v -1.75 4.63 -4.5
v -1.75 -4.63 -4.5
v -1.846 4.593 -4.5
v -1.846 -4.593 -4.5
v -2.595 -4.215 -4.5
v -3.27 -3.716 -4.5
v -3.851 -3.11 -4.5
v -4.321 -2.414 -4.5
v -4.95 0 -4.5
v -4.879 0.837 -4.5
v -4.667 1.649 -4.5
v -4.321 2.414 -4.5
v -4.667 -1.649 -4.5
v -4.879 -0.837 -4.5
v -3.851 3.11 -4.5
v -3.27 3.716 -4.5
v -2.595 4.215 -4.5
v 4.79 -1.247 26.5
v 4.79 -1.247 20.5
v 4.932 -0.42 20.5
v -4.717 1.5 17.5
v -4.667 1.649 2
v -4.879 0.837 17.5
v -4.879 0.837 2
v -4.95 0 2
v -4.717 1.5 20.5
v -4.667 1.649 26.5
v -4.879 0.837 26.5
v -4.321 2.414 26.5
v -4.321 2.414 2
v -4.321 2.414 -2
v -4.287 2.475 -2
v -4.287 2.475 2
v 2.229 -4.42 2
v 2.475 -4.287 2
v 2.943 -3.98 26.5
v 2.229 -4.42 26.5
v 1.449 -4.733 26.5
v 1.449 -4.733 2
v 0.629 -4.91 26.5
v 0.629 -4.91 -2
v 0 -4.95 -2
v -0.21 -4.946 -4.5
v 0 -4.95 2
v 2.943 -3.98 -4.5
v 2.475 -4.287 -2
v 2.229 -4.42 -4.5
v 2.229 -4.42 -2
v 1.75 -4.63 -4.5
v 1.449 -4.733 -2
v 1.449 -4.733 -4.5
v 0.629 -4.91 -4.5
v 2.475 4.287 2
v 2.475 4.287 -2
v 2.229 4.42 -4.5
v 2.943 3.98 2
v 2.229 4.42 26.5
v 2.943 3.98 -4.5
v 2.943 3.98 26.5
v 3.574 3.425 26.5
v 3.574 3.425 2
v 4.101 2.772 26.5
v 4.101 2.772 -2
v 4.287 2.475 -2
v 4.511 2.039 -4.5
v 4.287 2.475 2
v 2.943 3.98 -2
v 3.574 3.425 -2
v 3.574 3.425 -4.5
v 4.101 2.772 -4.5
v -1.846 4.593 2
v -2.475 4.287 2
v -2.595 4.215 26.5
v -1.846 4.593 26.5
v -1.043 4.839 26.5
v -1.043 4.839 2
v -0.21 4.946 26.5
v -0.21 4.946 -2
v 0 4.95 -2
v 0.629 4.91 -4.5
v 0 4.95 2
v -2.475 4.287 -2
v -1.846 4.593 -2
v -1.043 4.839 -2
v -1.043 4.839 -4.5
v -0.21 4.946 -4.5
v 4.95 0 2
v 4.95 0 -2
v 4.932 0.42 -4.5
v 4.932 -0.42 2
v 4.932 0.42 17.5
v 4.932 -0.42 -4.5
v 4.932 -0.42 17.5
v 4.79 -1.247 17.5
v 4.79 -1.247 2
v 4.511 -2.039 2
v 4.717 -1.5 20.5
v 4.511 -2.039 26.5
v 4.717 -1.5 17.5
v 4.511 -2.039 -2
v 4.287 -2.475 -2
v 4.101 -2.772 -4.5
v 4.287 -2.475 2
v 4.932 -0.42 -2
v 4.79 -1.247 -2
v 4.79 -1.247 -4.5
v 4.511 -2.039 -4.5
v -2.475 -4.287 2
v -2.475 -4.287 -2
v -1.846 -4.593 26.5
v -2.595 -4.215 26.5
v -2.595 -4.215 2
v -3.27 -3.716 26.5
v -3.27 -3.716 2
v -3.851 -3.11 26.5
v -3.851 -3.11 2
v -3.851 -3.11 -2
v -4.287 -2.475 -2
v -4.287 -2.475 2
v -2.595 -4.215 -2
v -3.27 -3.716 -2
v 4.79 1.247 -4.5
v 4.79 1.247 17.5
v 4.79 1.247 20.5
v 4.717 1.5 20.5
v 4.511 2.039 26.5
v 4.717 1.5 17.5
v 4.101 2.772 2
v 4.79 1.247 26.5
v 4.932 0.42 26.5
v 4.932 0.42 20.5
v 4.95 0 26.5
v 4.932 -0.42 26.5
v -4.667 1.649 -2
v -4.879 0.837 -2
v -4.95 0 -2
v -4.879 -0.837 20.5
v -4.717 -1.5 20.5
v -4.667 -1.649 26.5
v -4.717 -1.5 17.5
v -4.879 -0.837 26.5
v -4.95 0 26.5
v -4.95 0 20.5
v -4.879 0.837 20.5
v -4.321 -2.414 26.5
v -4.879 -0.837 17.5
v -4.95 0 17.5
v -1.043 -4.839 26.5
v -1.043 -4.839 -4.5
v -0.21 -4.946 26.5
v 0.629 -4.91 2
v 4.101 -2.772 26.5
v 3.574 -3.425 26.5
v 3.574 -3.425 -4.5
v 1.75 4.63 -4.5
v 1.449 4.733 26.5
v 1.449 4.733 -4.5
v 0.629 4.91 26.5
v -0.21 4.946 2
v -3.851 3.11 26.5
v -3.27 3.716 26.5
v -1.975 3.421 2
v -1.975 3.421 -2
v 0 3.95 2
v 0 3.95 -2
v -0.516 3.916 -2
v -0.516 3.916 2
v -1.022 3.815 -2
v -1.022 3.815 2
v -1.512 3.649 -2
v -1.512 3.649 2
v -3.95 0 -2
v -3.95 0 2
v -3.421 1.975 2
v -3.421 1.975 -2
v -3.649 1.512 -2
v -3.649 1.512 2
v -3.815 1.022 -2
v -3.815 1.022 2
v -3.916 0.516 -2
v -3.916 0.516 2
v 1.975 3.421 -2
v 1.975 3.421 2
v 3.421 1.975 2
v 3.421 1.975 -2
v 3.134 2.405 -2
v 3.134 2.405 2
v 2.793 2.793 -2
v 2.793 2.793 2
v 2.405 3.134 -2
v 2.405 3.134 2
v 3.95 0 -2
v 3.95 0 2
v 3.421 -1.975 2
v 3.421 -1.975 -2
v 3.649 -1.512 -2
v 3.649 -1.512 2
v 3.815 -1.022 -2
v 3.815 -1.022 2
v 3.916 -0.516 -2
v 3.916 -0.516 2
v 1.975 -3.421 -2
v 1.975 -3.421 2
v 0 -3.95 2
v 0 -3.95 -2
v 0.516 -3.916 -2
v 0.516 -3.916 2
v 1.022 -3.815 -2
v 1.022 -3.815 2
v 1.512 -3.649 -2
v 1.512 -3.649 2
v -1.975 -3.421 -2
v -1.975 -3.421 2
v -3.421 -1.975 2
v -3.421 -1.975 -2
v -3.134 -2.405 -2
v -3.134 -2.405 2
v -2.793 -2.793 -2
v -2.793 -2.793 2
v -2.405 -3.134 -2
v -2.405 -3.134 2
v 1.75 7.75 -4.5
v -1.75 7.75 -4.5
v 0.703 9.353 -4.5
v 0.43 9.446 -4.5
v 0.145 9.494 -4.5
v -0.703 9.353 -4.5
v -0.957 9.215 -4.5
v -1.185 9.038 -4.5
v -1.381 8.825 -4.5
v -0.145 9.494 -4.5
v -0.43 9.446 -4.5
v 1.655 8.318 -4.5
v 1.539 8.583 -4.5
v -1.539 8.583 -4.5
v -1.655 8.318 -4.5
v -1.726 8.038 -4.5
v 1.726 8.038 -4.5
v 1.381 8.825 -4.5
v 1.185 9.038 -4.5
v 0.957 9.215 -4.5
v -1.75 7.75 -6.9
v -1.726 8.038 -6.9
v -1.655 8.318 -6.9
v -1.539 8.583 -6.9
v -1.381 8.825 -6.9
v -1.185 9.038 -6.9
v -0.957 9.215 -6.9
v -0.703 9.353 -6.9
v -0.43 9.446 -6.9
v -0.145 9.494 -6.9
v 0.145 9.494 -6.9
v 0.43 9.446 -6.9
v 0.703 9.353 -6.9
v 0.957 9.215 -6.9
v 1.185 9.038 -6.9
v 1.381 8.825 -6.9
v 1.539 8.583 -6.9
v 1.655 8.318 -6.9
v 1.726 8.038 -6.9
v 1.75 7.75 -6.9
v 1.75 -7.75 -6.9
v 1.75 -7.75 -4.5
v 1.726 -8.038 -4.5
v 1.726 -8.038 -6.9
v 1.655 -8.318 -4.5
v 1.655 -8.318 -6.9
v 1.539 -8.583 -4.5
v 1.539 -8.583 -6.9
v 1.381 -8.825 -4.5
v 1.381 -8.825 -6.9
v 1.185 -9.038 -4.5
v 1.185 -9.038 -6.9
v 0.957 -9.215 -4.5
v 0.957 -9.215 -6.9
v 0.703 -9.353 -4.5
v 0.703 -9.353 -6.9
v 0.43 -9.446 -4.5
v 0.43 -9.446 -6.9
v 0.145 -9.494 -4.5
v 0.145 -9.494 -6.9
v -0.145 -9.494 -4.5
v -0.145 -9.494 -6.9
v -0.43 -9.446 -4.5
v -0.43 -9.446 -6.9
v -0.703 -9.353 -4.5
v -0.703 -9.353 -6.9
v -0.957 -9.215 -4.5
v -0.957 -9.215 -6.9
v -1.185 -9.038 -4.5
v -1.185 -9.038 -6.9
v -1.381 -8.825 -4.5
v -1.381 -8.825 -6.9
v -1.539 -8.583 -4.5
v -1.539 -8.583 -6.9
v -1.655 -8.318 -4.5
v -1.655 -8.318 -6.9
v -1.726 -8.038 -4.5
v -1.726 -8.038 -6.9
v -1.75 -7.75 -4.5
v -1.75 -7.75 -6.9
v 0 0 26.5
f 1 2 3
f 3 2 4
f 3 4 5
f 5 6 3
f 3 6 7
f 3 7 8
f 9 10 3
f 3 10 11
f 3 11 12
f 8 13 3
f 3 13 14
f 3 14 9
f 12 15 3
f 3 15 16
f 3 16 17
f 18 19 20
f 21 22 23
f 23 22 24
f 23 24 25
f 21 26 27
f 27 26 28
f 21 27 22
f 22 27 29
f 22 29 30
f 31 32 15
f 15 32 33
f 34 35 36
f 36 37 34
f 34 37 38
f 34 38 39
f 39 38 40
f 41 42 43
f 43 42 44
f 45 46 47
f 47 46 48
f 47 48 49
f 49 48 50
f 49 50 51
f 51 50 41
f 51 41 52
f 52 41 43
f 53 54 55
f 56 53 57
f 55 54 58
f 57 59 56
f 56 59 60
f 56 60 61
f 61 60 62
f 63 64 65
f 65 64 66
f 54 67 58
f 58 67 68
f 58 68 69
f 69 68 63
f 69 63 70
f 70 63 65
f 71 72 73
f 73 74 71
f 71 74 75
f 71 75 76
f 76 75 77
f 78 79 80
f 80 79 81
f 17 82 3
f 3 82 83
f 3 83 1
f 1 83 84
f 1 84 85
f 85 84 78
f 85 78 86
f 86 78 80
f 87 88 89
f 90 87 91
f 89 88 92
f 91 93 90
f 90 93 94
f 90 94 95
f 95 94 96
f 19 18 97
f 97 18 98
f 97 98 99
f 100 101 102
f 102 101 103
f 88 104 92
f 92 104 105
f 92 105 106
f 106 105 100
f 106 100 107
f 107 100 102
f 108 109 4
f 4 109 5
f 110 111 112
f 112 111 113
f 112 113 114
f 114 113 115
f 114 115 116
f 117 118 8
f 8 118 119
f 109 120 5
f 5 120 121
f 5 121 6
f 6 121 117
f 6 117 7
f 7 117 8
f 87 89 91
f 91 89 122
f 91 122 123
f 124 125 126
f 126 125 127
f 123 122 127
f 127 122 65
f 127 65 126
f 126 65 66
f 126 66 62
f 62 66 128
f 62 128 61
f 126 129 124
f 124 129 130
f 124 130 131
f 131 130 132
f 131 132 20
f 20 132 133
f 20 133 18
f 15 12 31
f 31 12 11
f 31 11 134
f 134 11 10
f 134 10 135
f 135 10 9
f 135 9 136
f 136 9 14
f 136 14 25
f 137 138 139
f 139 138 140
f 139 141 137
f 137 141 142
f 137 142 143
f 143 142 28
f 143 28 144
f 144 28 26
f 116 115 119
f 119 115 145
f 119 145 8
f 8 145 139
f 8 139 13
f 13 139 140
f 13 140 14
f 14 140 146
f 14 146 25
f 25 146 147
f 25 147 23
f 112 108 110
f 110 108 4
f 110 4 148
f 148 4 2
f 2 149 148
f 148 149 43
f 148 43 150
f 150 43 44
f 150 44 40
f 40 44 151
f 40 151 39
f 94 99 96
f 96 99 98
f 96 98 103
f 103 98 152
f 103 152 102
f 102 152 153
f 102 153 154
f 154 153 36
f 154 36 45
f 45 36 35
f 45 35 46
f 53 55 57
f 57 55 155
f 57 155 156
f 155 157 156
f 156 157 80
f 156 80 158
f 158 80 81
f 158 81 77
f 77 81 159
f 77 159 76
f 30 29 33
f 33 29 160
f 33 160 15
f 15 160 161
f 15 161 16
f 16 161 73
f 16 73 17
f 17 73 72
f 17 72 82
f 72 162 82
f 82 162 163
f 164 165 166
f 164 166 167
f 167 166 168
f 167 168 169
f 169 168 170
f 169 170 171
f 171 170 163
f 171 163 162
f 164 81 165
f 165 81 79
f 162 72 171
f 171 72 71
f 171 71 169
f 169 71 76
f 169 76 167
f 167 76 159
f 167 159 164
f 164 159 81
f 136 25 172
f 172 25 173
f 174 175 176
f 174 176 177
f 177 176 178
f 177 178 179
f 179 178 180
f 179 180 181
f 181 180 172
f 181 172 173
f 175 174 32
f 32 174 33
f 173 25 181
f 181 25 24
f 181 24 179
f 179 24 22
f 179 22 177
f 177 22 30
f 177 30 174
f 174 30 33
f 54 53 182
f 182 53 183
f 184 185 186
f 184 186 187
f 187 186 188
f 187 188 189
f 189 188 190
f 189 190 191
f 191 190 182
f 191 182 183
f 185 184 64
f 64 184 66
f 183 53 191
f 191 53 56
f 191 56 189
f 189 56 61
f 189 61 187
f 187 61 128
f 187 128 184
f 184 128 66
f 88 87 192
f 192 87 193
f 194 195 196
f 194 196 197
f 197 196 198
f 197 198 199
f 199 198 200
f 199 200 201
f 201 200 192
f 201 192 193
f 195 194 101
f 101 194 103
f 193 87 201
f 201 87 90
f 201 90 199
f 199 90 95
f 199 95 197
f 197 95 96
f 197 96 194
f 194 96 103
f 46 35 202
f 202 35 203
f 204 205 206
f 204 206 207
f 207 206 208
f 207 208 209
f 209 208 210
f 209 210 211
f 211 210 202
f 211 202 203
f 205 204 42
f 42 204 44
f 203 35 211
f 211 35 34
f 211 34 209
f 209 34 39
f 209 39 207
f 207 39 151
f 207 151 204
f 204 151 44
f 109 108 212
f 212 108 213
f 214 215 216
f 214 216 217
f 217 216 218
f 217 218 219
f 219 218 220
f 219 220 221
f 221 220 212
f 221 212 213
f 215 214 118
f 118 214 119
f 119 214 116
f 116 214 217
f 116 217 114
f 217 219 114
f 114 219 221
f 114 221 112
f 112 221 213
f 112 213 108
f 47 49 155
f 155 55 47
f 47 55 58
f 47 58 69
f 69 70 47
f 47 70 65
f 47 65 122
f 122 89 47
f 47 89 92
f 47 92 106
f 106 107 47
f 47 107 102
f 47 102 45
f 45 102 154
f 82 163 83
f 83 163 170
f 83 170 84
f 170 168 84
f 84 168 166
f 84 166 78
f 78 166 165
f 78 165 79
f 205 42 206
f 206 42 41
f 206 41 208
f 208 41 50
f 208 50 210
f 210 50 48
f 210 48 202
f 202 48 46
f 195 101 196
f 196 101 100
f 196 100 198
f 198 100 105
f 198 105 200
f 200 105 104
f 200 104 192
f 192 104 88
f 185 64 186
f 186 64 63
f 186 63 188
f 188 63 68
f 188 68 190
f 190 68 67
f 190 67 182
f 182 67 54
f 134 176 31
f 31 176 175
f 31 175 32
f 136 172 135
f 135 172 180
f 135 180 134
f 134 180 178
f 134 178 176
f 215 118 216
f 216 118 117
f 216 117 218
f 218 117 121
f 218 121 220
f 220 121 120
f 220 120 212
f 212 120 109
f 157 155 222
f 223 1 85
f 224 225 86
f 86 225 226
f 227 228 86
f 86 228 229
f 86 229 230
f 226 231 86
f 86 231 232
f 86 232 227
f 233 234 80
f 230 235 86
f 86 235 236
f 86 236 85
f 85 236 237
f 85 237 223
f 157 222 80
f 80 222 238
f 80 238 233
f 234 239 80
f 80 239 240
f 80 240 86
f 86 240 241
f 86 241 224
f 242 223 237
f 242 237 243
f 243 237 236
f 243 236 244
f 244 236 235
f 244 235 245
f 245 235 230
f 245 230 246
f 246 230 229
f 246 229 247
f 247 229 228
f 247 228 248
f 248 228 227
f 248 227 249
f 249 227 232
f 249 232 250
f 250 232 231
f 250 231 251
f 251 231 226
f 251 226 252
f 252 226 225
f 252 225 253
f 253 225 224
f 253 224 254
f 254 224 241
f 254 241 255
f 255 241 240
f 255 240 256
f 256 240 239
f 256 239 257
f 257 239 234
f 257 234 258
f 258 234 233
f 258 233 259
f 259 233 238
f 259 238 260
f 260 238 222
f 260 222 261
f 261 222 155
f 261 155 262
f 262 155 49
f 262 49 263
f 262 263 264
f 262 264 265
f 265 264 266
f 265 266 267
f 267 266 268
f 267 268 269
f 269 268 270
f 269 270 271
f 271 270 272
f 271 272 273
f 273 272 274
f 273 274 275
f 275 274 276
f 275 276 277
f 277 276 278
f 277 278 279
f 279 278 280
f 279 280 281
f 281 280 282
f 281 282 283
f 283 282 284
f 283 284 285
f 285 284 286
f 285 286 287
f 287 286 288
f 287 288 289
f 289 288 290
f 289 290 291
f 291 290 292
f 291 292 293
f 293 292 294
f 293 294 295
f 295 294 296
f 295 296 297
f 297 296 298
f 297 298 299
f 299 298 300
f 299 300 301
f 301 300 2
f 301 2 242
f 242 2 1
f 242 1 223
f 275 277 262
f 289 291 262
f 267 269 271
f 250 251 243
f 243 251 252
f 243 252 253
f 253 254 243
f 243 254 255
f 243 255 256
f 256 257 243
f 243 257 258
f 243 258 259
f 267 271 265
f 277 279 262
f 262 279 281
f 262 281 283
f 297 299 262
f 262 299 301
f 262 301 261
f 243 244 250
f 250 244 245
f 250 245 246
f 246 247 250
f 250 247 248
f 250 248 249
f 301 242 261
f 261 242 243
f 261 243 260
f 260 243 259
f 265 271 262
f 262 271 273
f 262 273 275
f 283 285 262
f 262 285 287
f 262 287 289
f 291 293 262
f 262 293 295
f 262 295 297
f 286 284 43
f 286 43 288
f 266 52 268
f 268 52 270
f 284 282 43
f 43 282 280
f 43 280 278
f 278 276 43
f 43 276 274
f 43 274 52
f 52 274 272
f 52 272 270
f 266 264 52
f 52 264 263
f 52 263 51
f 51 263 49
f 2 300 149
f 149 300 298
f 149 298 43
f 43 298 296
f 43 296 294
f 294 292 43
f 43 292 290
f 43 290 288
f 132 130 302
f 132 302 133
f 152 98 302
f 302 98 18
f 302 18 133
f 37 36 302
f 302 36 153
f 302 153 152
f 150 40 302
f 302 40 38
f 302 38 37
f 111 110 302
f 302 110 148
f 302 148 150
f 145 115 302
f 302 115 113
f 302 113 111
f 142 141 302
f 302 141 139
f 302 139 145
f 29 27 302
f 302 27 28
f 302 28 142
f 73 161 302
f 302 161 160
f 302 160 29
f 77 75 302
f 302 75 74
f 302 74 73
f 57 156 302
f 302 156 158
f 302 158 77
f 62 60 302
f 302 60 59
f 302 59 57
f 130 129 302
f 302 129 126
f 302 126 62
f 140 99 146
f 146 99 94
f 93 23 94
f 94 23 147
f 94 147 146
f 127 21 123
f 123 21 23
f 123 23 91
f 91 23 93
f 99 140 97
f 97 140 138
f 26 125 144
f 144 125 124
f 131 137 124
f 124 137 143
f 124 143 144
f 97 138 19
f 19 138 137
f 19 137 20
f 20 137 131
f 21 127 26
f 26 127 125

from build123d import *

# Parameters (mm, degrees)
SKETCH_1_R               = 4.95
EXTRUDE_1_DEPTH          = 4.5
CUT_EXTRUDE_1_DEPTH      = 2
PATTERN_CIRCULAR_1_COUNT = 6
MIRROR_1_COPY_1_DEPTH    = 2
MIRROR_1_COPY_2_DEPTH    = 2
MIRROR_1_COPY_3_DEPTH    = 2
MIRROR_1_COPY_4_DEPTH    = 2
MIRROR_1_COPY_5_DEPTH    = 2
EXTRUDE_2_DEPTH          = 2.4
SKETCH_5_R               = 4.95
EXTRUDE_3_DEPTH          = 22
CUT_EXTRUDE_2_DEPTH      = 29.583255588
CUT_EXTRUDE_2_DEPTH_BACK = 29.583255588
SKETCH_6_W               = 3
SKETCH_6_H               = 3


with BuildPart() as part:
    # 草图1 → 凸台-拉伸1 (new body)
    with BuildSketch(Plane.XY):
        Circle(SKETCH_1_R)
    extrude_1 = extrude(amount=EXTRUDE_1_DEPTH)

    # 草图2 → 切除-拉伸1 (cut)
    with BuildSketch(Plane(origin=(0, 0, 0), x_dir=(-1, 0, 0), z_dir=(0, 0, -1))):
        with BuildLine():
            Line((0, 4.95), (0, 3.95))
            ThreePointArc((0, 3.95), (1.022335228, 3.815407014), (1.975, 3.420800345))
            Line((1.975, 3.420800345), (2.475, 4.286825749))
            ThreePointArc((2.475, 4.286825749), (1.281154273, 4.78133284), (0, 4.95))
        make_face()
    cut_extrude_1 = extrude(amount=-CUT_EXTRUDE_1_DEPTH, mode=Mode.SUBTRACT)

    # 阵列(圆周)1: 切除-拉伸1 ×6 about axis
    pattern_circular_1_axis = Axis((0, 0, 0), (0, 0, 1))
    for i in range(1, PATTERN_CIRCULAR_1_COUNT):
        add(cut_extrude_1.rotate(pattern_circular_1_axis, i * 360 / PATTERN_CIRCULAR_1_COUNT), mode=Mode.SUBTRACT)

    # 镜向1: 凸台-拉伸1, 切除-拉伸1 across plane
    add(extrude_1.mirror(Plane.XY))
    add(cut_extrude_1.mirror(Plane.XY), mode=Mode.SUBTRACT)

    # 镜向1 copy 1 sketch → 镜向1 copy 1 (cut)
    with BuildSketch(Plane(origin=(0, 0, 0), x_dir=(-0.5000000000000001, -0.8660254037844386, 0), z_dir=(0, 0, 1))):
        with BuildLine():
            Line((0, -4.95), (0, -3.95))
            ThreePointArc((0, -3.95), (1.022335228, -3.815407014), (1.975, -3.420800345))
            Line((1.975, -3.420800345), (2.475, -4.286825749))
            ThreePointArc((2.475, -4.286825749), (1.281154273, -4.78133284), (0, -4.95))
        make_face()
    extrude(amount=-MIRROR_1_COPY_1_DEPTH, mode=Mode.SUBTRACT)

    # 镜向1 copy 2 sketch → 镜向1 copy 2 (cut)
    with BuildSketch(Plane(origin=(0, 0, 0), x_dir=(0.4999999999999998, -0.8660254037844387, 0), z_dir=(0, 0, 1))):
        with BuildLine():
            Line((0, -4.95), (0, -3.95))
            ThreePointArc((0, -3.95), (1.022335228, -3.815407014), (1.975, -3.420800345))
            Line((1.975, -3.420800345), (2.475, -4.286825749))
            ThreePointArc((2.475, -4.286825749), (1.281154273, -4.78133284), (0, -4.95))
        make_face()
    extrude(amount=-MIRROR_1_COPY_2_DEPTH, mode=Mode.SUBTRACT)

    # 镜向1 copy 3 sketch → 镜向1 copy 3 (cut)
    with BuildSketch(Plane.XY):
        with BuildLine():
            Line((0, -4.95), (0, -3.95))
            ThreePointArc((0, -3.95), (1.022335228, -3.815407014), (1.975, -3.420800345))
            Line((1.975, -3.420800345), (2.475, -4.286825749))
            ThreePointArc((2.475, -4.286825749), (1.281154273, -4.78133284), (0, -4.95))
        make_face()
    extrude(amount=-MIRROR_1_COPY_3_DEPTH, mode=Mode.SUBTRACT)

    # 镜向1 copy 4 sketch → 镜向1 copy 4 (cut)
    with BuildSketch(Plane(origin=(0, 0, 0), x_dir=(0.5000000000000004, 0.8660254037844384, 0), z_dir=(0, 0, 1))):
        with BuildLine():
            Line((0, -4.95), (0, -3.95))
            ThreePointArc((0, -3.95), (1.022335228, -3.815407014), (1.975, -3.420800345))
            Line((1.975, -3.420800345), (2.475, -4.286825749))
            ThreePointArc((2.475, -4.286825749), (1.281154273, -4.78133284), (0, -4.95))
        make_face()
    extrude(amount=-MIRROR_1_COPY_4_DEPTH, mode=Mode.SUBTRACT)

    # 镜向1 copy 5 sketch → 镜向1 copy 5 (cut)
    with BuildSketch(Plane(origin=(0, 0, 0), x_dir=(-0.5000000000000001, 0.8660254037844386, 0), z_dir=(0, 0, 1))):
        with BuildLine():
            Line((0, -4.95), (0, -3.95))
            ThreePointArc((0, -3.95), (1.022335228, -3.815407014), (1.975, -3.420800345))
            Line((1.975, -3.420800345), (2.475, -4.286825749))
            ThreePointArc((2.475, -4.286825749), (1.281154273, -4.78133284), (0, -4.95))
        make_face()
    extrude(amount=-MIRROR_1_COPY_5_DEPTH, mode=Mode.SUBTRACT)

    # 草图3 → 凸台-拉伸2 (add)
    with BuildSketch(Plane(origin=(0, 0, -4.5), x_dir=(-1, 0, 0), z_dir=(0, 0, -1))):
        with BuildLine():
            Line((1.75, 7.75), (1.75, -7.75))
            ThreePointArc((1.75, -7.75), (0, -9.5), (-1.75, -7.75))
            Line((-1.75, -7.75), (-1.75, 7.75))
            ThreePointArc((-1.75, 7.75), (0, 9.5), (1.75, 7.75))
        make_face()
    extrude(amount=EXTRUDE_2_DEPTH)

    # 草图5 → 凸台-拉伸3 (add)
    with BuildSketch(Plane.XY.offset(4.5)):
        with Locations(Location((0, 0, 0), (0, 0, 110.703706257))):
            Circle(SKETCH_5_R)
    extrude(amount=EXTRUDE_3_DEPTH)

    # 草图6 → 切除-拉伸2 (cut, two sides: drawn at the far end of the back side and taken through both)
    with BuildSketch(Plane(origin=(0, 0, 0), x_dir=(0, 0, -1), z_dir=(1, 0, 0)).offset(-CUT_EXTRUDE_2_DEPTH_BACK)):
        with Locations((-19, 0)):
            Rectangle(SKETCH_6_W, SKETCH_6_H)
    extrude(amount=CUT_EXTRUDE_2_DEPTH + CUT_EXTRUDE_2_DEPTH_BACK, mode=Mode.SUBTRACT)


solid = part.part
